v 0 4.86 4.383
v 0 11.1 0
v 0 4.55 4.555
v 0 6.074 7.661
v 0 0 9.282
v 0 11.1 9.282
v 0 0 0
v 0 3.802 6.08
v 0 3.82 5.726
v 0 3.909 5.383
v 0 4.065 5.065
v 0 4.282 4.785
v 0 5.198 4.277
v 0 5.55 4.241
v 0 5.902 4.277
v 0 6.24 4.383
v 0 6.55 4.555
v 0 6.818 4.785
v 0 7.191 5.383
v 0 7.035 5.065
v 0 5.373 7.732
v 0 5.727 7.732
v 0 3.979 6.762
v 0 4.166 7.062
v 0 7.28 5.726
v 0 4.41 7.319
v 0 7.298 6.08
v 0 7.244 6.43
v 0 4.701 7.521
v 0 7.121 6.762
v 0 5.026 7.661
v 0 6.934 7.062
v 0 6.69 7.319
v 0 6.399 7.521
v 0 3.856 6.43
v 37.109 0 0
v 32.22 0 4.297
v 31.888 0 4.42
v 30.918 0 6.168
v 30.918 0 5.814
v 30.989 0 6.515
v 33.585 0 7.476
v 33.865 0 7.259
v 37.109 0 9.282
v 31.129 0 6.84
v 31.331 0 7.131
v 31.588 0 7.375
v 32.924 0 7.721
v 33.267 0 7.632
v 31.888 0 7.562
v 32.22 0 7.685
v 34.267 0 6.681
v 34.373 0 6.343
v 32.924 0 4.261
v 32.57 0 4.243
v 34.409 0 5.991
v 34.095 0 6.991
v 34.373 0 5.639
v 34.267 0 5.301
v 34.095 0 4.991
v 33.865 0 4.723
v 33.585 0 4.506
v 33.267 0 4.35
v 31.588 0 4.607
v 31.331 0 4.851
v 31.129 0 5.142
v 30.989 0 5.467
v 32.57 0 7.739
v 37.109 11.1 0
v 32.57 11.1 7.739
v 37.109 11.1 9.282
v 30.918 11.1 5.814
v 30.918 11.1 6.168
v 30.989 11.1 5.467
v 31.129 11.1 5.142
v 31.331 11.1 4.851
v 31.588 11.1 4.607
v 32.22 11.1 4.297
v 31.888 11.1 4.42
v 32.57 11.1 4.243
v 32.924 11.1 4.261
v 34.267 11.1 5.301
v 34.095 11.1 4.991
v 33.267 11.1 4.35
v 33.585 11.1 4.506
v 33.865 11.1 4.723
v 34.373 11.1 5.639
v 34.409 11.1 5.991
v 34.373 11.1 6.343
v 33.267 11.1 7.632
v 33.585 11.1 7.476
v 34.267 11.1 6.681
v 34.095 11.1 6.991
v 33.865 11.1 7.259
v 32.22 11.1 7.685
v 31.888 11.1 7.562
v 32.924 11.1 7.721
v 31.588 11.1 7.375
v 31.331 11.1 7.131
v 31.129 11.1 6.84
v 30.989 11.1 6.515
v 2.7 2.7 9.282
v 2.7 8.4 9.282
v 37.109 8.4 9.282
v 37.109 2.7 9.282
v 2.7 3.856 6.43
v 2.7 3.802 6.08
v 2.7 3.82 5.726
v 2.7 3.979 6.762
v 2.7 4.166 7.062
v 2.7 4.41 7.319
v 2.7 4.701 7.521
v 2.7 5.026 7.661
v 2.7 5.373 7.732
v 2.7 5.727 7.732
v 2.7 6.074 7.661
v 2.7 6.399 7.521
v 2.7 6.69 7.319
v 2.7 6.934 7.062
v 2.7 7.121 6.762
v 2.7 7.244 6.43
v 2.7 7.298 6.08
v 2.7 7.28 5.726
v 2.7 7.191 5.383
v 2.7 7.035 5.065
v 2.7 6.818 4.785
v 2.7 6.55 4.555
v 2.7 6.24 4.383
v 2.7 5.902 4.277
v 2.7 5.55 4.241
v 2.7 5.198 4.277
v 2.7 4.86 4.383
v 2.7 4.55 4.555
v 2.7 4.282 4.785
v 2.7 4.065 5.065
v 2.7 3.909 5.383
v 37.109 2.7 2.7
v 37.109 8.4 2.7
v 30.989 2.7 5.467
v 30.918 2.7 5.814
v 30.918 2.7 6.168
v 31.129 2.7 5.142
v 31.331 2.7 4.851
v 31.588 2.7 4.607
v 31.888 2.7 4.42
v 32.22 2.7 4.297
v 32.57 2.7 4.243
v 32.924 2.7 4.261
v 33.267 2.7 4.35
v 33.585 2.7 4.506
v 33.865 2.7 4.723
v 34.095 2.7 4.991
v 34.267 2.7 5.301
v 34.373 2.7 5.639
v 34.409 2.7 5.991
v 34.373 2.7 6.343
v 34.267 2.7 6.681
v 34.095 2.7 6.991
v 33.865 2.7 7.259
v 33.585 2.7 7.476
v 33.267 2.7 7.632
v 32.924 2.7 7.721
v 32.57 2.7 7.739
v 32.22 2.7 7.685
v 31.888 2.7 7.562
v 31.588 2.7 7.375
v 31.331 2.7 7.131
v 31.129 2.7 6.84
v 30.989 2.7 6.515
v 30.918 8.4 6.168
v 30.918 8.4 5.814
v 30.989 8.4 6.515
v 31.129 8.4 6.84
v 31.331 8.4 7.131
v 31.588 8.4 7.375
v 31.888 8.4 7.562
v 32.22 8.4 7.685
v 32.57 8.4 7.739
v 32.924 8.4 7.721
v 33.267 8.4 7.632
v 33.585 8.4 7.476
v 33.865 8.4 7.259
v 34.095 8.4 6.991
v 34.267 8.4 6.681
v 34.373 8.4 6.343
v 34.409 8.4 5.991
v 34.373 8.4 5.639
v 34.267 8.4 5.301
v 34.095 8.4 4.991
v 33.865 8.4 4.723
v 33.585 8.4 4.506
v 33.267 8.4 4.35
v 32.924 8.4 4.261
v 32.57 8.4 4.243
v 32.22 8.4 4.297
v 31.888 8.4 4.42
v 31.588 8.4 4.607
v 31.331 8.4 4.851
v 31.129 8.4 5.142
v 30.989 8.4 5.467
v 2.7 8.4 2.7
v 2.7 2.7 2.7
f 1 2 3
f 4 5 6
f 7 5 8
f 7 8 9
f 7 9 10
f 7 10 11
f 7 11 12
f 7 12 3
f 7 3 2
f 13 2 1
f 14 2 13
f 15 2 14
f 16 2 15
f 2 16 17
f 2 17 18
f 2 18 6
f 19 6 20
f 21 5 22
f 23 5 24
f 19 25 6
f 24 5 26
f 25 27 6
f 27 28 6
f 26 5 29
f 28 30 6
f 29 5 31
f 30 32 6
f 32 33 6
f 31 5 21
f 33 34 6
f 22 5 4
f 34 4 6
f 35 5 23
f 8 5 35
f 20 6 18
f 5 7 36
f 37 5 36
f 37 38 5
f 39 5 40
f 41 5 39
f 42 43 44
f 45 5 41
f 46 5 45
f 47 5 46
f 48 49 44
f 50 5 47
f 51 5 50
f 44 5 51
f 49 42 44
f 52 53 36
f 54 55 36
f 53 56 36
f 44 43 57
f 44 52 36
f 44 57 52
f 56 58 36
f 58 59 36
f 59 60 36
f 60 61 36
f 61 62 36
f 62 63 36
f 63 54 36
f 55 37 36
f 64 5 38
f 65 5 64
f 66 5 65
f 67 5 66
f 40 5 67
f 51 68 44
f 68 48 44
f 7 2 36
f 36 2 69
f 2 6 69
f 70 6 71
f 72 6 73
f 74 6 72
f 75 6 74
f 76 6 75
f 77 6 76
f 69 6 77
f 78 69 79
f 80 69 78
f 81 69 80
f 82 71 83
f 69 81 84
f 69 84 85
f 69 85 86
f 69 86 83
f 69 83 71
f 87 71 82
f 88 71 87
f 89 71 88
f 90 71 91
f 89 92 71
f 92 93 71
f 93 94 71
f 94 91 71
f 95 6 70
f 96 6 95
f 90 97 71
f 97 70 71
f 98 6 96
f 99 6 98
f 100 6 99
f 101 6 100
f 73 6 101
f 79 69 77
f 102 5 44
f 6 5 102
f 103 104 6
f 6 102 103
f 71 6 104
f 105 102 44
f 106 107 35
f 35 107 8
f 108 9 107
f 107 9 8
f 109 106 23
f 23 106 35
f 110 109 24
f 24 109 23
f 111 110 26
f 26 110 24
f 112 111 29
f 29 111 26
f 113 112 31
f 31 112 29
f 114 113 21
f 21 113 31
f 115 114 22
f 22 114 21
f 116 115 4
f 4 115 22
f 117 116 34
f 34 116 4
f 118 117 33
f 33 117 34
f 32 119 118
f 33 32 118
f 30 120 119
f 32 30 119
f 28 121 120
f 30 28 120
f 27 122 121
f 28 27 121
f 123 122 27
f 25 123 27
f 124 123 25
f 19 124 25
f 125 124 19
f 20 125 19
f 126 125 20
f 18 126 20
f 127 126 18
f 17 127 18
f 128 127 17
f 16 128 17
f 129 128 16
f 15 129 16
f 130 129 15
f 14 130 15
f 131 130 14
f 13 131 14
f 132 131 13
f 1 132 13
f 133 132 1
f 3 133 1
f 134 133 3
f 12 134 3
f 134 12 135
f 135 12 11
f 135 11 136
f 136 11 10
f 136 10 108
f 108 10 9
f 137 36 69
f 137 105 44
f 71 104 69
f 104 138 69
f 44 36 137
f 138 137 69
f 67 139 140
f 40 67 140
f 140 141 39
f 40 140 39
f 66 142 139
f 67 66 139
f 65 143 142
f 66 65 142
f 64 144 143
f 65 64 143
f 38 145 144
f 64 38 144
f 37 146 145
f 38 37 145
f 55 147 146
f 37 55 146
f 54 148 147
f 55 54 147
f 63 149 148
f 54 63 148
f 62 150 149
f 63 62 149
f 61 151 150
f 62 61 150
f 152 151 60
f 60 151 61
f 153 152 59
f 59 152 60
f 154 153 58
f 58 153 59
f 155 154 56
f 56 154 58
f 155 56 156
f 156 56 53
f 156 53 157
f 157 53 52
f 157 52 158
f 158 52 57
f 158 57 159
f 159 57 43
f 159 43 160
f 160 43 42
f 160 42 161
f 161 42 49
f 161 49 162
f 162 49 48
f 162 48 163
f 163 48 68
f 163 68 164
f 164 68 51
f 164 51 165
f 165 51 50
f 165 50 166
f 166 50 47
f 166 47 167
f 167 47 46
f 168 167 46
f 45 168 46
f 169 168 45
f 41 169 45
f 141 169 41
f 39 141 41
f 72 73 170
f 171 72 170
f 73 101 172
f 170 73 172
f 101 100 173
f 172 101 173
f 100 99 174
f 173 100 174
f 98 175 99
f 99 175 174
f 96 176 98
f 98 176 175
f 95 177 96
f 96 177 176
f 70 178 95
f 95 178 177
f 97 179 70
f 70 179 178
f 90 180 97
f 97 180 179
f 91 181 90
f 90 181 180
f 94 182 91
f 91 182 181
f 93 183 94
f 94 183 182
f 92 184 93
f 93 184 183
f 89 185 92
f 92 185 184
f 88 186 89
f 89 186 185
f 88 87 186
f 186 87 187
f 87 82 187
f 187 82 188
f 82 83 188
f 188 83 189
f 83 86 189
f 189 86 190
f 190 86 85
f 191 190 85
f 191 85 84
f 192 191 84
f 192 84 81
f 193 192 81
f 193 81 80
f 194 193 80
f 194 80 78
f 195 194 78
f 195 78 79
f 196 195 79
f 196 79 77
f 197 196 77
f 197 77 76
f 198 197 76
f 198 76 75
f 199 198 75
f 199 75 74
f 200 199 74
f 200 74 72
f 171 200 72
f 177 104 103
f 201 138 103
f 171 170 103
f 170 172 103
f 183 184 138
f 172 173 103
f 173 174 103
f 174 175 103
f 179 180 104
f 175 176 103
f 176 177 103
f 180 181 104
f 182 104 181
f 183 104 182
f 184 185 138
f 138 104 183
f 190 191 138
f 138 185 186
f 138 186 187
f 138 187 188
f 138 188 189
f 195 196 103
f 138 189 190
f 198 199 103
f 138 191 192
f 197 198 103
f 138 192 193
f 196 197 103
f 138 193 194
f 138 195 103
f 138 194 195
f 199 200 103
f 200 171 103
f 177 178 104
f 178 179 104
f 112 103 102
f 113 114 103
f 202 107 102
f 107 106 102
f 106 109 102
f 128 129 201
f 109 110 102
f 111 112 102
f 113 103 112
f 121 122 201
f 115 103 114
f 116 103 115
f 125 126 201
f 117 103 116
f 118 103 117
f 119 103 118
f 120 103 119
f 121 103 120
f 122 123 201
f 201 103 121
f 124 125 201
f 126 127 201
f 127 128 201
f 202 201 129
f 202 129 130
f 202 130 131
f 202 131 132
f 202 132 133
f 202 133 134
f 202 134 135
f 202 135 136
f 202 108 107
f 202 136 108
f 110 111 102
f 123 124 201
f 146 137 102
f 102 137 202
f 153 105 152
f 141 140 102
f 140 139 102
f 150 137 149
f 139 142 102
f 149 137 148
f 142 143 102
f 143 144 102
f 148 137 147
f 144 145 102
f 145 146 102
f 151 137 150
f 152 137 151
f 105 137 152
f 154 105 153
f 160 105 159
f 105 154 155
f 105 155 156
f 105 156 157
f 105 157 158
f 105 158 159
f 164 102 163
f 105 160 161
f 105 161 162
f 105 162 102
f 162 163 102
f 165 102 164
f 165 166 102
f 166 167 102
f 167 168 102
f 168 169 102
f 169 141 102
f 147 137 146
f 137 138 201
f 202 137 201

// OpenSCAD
// file: config.scad
// https://docs.google.com/viewer?a=v&pid=explorer&chrome=true&srcid=0B8AGtzEPL1XpNGIwMjM0NzQtZmMyMS00YmU2LTkwMjItNTkzNzA0MDJkZTAx&hl=en_US&authkey=CMjZjW0

$fn = 31;

//Delta config constants
upperlinkage = 63; 
lowerlinkage = 126;
baseradius = 35;
endeffector = 50; //radius of the end effector
fourbarspacing = 70;

//hardware
screwdia = 3.5; //m3
screwheaddia = 5.6; //m3
screwheadheight = 3.2; //m3
nutapothem = 5.7; //m3
nutheight = 2.5; //m3 lock nut

//motors 
holespacing = 17*2.54*sin(45); //nema 17
shaftlength = 22;
shaftdia = 5;
bodylength = 48;
bodywidth = 42; //could also be diameter of a round servo
motorwall = 2.75;
motorcenterdia = 25;

//Structure pieces
structbase = 110;  //180
structheight = 40;  //70
structholes = 3; //how many holes are on each side. 
structthickness = 2;
structbracewidth = 9;

//z axis plates
smoothroddia = 8;
platelength = 110;
platethickness = 3;

//cups
cupwall = 2.7;

//end effector
extruderspacing = 40;
extrudermountholes = 10;

//base
basemotorwall = 2.7;

//upper linkage
upperlinkthick = nutapothem/cos(30);
upperlinkwidth = 20;

//coupling
leadscrewdia = 8;
couplingwall = 5;
couplingheight = 30;

//general shit
nutwall = nutapothem/4;
// main file
include <config.scad>;

module cups(){

	difference(){

		union(){
			
			//Main Cube
			cube([fourbarspacing/2-upperlinkthick/2+cupwall*2,cupwall*2+nutapothem,cupwall+nutapothem/cos(30)]);
		
			//rounding off
		


		}
		//Cavity
		translate([cupwall,cupwall,cupwall])cube([fourbarspacing/2-upperlinkthick/2+cupwall+1,nutapothem, nutapothem/cos(30)+1]);


		//Bearing holes
		translate([-1,cupwall+nutapothem/2,cupwall+nutapothem/cos(30)/2])rotate([0,90,0])cylinder(r = screwdia/2, h = cupwall+2);
		translate([fourbarspacing/2-upperlinkthick/2+cupwall-screwdia/2,-1,cupwall+nutapothem/cos(30)/2])rotate([-90,0,0])cylinder(r = screwdia/2, h = cupwall*2+nutapothem+2);

	}

}

cups();
